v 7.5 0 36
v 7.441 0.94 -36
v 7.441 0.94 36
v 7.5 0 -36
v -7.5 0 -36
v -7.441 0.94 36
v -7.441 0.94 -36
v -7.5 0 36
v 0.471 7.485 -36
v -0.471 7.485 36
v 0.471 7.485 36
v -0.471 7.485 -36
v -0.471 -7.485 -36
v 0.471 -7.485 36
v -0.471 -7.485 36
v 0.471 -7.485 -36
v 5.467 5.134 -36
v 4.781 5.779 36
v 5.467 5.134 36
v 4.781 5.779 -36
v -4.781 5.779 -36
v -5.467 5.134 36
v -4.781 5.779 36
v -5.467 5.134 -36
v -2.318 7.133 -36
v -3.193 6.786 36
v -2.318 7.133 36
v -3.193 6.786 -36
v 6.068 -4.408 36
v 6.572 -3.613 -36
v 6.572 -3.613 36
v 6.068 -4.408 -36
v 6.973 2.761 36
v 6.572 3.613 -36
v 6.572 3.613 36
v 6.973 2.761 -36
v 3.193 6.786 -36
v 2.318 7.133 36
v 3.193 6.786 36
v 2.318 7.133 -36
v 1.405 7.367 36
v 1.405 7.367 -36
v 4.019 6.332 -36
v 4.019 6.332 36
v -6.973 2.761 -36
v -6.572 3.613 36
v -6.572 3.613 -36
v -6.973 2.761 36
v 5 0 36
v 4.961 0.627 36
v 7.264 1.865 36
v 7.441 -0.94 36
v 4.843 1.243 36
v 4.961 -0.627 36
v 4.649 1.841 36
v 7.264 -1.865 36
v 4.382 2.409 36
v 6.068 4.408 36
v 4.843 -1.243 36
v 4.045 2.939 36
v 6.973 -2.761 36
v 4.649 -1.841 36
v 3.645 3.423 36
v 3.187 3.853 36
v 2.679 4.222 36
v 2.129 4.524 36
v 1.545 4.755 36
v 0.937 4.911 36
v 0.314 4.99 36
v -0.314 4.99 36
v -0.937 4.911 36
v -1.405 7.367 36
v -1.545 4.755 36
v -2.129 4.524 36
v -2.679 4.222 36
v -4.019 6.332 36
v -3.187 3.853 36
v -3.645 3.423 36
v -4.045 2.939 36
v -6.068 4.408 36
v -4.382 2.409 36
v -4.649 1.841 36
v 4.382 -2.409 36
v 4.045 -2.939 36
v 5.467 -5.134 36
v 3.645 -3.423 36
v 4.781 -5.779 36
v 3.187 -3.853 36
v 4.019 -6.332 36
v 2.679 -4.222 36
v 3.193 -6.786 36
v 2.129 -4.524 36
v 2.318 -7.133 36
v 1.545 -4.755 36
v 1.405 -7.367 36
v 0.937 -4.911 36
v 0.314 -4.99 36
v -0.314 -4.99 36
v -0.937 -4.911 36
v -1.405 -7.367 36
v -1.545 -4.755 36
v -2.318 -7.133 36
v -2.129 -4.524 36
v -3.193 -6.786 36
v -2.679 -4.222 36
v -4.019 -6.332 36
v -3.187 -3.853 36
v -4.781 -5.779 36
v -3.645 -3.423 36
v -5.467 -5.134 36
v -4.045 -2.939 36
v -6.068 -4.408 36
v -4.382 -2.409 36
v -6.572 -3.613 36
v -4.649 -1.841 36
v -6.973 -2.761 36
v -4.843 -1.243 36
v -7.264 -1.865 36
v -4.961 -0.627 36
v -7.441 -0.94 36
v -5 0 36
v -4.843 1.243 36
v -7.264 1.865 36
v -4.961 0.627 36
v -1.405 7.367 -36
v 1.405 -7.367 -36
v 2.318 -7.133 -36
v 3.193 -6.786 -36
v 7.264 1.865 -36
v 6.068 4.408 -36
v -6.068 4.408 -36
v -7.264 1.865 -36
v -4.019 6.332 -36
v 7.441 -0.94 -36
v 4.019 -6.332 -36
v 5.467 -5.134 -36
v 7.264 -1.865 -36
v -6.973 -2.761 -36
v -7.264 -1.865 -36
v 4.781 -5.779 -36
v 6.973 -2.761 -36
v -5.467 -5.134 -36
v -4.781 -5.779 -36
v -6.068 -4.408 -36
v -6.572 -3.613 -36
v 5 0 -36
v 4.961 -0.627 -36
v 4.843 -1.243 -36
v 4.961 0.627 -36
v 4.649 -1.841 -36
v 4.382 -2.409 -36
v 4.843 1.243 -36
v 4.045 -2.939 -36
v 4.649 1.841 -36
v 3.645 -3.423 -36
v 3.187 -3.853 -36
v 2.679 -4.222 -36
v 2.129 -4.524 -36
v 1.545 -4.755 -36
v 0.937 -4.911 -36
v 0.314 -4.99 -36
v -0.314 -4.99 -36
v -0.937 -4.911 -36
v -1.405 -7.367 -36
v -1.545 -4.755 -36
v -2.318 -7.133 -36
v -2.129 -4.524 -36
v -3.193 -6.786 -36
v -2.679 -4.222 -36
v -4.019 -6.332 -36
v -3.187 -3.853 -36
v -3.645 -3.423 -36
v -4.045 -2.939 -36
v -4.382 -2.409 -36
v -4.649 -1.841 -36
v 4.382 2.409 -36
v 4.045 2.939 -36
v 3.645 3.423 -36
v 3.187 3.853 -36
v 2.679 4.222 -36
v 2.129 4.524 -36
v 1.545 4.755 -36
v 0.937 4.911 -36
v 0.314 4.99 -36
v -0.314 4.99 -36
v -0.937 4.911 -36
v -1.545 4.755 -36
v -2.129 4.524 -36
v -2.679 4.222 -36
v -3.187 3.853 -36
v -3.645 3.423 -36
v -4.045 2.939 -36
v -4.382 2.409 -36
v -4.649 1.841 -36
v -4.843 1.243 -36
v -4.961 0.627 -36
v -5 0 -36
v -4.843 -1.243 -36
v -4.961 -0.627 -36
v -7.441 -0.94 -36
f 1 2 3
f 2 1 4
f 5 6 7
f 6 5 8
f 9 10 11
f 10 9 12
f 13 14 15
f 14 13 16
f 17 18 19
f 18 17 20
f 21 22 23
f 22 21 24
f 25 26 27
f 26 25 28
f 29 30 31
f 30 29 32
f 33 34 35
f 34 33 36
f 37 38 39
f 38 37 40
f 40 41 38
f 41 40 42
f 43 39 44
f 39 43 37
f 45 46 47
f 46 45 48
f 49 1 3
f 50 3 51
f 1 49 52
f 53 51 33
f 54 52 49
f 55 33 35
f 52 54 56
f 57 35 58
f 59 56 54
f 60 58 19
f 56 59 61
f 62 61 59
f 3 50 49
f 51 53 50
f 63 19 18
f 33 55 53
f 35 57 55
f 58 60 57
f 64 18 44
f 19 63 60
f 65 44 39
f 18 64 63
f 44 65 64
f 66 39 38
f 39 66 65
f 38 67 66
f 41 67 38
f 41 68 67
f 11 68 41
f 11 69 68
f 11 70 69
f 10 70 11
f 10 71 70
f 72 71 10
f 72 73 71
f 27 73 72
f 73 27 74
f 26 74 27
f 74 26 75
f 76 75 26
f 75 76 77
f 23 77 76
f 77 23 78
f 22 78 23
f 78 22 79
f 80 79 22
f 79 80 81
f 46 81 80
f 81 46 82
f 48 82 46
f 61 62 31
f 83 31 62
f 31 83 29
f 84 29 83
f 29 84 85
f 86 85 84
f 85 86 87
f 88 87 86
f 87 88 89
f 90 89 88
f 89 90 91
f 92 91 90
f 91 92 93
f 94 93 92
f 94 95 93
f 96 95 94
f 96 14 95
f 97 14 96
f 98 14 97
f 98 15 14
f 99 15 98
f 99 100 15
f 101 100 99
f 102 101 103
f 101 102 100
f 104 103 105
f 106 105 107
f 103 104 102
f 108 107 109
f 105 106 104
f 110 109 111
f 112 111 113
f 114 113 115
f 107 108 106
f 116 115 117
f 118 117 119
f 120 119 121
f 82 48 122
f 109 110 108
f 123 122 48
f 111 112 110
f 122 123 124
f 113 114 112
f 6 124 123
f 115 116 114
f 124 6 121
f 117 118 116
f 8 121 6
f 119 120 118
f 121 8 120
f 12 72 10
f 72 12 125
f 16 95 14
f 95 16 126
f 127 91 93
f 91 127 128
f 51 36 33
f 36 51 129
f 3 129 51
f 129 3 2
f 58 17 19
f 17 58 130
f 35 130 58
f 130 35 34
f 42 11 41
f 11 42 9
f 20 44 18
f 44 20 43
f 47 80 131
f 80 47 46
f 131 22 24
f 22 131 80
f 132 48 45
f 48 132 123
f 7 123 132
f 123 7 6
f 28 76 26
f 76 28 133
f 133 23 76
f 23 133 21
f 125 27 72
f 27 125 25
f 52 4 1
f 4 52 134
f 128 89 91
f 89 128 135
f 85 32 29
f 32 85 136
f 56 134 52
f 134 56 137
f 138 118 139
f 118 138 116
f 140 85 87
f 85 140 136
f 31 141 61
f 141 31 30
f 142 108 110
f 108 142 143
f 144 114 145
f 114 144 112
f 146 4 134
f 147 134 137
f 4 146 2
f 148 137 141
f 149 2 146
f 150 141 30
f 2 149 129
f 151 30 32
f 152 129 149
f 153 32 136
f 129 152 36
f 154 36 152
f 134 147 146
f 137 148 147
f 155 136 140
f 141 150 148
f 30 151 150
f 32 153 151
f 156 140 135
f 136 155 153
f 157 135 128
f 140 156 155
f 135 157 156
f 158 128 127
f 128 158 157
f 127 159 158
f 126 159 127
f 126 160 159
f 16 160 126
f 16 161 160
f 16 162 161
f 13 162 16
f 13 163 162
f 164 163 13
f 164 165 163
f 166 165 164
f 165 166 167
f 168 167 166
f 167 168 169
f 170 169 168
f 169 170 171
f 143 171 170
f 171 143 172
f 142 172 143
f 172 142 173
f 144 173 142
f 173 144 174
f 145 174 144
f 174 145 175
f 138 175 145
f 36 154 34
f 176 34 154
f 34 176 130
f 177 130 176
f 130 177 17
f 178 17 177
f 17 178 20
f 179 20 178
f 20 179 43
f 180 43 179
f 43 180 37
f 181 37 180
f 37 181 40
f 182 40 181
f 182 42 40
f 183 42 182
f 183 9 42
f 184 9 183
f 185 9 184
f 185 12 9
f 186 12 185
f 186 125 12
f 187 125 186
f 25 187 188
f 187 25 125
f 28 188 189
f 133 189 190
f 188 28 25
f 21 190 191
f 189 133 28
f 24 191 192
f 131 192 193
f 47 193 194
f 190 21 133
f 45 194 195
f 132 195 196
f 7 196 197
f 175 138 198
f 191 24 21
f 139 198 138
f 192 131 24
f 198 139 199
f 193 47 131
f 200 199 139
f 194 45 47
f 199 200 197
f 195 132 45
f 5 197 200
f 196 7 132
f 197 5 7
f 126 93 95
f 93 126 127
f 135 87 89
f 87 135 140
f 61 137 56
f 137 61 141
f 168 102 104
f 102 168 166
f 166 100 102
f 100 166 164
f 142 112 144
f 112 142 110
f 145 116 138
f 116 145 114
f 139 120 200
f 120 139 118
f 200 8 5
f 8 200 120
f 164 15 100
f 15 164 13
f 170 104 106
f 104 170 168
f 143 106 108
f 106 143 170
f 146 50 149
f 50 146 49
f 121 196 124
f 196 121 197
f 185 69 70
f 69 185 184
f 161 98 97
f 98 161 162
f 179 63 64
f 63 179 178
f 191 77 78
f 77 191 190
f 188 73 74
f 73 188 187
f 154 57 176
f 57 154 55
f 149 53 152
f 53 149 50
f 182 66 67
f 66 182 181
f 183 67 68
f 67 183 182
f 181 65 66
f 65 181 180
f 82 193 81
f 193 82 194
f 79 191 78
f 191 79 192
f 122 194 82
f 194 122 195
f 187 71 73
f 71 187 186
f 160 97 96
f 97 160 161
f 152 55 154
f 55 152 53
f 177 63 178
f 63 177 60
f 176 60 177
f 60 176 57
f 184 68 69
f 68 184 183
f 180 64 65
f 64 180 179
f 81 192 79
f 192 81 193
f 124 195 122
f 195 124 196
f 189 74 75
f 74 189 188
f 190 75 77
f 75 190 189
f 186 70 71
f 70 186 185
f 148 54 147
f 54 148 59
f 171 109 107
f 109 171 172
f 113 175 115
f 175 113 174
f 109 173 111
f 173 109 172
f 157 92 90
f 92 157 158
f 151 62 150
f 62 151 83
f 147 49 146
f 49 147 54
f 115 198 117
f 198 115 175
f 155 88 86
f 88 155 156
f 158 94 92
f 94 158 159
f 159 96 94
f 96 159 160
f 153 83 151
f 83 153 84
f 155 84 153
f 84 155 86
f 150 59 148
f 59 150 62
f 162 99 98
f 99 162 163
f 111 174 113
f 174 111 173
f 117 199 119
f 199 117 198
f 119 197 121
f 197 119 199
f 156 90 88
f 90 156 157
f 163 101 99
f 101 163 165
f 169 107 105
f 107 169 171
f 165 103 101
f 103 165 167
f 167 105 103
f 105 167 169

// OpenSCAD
$fn = 50;


difference() {
	union() {
		translate(v = [0, 0, -36.0000000000]) {
			cylinder(h = 72, r = 7.5000000000);
		}
	}
	union() {
		translate(v = [0, 0, -100.0000000000]) {
			cylinder(h = 200, r = 5);
		}
	}
}
